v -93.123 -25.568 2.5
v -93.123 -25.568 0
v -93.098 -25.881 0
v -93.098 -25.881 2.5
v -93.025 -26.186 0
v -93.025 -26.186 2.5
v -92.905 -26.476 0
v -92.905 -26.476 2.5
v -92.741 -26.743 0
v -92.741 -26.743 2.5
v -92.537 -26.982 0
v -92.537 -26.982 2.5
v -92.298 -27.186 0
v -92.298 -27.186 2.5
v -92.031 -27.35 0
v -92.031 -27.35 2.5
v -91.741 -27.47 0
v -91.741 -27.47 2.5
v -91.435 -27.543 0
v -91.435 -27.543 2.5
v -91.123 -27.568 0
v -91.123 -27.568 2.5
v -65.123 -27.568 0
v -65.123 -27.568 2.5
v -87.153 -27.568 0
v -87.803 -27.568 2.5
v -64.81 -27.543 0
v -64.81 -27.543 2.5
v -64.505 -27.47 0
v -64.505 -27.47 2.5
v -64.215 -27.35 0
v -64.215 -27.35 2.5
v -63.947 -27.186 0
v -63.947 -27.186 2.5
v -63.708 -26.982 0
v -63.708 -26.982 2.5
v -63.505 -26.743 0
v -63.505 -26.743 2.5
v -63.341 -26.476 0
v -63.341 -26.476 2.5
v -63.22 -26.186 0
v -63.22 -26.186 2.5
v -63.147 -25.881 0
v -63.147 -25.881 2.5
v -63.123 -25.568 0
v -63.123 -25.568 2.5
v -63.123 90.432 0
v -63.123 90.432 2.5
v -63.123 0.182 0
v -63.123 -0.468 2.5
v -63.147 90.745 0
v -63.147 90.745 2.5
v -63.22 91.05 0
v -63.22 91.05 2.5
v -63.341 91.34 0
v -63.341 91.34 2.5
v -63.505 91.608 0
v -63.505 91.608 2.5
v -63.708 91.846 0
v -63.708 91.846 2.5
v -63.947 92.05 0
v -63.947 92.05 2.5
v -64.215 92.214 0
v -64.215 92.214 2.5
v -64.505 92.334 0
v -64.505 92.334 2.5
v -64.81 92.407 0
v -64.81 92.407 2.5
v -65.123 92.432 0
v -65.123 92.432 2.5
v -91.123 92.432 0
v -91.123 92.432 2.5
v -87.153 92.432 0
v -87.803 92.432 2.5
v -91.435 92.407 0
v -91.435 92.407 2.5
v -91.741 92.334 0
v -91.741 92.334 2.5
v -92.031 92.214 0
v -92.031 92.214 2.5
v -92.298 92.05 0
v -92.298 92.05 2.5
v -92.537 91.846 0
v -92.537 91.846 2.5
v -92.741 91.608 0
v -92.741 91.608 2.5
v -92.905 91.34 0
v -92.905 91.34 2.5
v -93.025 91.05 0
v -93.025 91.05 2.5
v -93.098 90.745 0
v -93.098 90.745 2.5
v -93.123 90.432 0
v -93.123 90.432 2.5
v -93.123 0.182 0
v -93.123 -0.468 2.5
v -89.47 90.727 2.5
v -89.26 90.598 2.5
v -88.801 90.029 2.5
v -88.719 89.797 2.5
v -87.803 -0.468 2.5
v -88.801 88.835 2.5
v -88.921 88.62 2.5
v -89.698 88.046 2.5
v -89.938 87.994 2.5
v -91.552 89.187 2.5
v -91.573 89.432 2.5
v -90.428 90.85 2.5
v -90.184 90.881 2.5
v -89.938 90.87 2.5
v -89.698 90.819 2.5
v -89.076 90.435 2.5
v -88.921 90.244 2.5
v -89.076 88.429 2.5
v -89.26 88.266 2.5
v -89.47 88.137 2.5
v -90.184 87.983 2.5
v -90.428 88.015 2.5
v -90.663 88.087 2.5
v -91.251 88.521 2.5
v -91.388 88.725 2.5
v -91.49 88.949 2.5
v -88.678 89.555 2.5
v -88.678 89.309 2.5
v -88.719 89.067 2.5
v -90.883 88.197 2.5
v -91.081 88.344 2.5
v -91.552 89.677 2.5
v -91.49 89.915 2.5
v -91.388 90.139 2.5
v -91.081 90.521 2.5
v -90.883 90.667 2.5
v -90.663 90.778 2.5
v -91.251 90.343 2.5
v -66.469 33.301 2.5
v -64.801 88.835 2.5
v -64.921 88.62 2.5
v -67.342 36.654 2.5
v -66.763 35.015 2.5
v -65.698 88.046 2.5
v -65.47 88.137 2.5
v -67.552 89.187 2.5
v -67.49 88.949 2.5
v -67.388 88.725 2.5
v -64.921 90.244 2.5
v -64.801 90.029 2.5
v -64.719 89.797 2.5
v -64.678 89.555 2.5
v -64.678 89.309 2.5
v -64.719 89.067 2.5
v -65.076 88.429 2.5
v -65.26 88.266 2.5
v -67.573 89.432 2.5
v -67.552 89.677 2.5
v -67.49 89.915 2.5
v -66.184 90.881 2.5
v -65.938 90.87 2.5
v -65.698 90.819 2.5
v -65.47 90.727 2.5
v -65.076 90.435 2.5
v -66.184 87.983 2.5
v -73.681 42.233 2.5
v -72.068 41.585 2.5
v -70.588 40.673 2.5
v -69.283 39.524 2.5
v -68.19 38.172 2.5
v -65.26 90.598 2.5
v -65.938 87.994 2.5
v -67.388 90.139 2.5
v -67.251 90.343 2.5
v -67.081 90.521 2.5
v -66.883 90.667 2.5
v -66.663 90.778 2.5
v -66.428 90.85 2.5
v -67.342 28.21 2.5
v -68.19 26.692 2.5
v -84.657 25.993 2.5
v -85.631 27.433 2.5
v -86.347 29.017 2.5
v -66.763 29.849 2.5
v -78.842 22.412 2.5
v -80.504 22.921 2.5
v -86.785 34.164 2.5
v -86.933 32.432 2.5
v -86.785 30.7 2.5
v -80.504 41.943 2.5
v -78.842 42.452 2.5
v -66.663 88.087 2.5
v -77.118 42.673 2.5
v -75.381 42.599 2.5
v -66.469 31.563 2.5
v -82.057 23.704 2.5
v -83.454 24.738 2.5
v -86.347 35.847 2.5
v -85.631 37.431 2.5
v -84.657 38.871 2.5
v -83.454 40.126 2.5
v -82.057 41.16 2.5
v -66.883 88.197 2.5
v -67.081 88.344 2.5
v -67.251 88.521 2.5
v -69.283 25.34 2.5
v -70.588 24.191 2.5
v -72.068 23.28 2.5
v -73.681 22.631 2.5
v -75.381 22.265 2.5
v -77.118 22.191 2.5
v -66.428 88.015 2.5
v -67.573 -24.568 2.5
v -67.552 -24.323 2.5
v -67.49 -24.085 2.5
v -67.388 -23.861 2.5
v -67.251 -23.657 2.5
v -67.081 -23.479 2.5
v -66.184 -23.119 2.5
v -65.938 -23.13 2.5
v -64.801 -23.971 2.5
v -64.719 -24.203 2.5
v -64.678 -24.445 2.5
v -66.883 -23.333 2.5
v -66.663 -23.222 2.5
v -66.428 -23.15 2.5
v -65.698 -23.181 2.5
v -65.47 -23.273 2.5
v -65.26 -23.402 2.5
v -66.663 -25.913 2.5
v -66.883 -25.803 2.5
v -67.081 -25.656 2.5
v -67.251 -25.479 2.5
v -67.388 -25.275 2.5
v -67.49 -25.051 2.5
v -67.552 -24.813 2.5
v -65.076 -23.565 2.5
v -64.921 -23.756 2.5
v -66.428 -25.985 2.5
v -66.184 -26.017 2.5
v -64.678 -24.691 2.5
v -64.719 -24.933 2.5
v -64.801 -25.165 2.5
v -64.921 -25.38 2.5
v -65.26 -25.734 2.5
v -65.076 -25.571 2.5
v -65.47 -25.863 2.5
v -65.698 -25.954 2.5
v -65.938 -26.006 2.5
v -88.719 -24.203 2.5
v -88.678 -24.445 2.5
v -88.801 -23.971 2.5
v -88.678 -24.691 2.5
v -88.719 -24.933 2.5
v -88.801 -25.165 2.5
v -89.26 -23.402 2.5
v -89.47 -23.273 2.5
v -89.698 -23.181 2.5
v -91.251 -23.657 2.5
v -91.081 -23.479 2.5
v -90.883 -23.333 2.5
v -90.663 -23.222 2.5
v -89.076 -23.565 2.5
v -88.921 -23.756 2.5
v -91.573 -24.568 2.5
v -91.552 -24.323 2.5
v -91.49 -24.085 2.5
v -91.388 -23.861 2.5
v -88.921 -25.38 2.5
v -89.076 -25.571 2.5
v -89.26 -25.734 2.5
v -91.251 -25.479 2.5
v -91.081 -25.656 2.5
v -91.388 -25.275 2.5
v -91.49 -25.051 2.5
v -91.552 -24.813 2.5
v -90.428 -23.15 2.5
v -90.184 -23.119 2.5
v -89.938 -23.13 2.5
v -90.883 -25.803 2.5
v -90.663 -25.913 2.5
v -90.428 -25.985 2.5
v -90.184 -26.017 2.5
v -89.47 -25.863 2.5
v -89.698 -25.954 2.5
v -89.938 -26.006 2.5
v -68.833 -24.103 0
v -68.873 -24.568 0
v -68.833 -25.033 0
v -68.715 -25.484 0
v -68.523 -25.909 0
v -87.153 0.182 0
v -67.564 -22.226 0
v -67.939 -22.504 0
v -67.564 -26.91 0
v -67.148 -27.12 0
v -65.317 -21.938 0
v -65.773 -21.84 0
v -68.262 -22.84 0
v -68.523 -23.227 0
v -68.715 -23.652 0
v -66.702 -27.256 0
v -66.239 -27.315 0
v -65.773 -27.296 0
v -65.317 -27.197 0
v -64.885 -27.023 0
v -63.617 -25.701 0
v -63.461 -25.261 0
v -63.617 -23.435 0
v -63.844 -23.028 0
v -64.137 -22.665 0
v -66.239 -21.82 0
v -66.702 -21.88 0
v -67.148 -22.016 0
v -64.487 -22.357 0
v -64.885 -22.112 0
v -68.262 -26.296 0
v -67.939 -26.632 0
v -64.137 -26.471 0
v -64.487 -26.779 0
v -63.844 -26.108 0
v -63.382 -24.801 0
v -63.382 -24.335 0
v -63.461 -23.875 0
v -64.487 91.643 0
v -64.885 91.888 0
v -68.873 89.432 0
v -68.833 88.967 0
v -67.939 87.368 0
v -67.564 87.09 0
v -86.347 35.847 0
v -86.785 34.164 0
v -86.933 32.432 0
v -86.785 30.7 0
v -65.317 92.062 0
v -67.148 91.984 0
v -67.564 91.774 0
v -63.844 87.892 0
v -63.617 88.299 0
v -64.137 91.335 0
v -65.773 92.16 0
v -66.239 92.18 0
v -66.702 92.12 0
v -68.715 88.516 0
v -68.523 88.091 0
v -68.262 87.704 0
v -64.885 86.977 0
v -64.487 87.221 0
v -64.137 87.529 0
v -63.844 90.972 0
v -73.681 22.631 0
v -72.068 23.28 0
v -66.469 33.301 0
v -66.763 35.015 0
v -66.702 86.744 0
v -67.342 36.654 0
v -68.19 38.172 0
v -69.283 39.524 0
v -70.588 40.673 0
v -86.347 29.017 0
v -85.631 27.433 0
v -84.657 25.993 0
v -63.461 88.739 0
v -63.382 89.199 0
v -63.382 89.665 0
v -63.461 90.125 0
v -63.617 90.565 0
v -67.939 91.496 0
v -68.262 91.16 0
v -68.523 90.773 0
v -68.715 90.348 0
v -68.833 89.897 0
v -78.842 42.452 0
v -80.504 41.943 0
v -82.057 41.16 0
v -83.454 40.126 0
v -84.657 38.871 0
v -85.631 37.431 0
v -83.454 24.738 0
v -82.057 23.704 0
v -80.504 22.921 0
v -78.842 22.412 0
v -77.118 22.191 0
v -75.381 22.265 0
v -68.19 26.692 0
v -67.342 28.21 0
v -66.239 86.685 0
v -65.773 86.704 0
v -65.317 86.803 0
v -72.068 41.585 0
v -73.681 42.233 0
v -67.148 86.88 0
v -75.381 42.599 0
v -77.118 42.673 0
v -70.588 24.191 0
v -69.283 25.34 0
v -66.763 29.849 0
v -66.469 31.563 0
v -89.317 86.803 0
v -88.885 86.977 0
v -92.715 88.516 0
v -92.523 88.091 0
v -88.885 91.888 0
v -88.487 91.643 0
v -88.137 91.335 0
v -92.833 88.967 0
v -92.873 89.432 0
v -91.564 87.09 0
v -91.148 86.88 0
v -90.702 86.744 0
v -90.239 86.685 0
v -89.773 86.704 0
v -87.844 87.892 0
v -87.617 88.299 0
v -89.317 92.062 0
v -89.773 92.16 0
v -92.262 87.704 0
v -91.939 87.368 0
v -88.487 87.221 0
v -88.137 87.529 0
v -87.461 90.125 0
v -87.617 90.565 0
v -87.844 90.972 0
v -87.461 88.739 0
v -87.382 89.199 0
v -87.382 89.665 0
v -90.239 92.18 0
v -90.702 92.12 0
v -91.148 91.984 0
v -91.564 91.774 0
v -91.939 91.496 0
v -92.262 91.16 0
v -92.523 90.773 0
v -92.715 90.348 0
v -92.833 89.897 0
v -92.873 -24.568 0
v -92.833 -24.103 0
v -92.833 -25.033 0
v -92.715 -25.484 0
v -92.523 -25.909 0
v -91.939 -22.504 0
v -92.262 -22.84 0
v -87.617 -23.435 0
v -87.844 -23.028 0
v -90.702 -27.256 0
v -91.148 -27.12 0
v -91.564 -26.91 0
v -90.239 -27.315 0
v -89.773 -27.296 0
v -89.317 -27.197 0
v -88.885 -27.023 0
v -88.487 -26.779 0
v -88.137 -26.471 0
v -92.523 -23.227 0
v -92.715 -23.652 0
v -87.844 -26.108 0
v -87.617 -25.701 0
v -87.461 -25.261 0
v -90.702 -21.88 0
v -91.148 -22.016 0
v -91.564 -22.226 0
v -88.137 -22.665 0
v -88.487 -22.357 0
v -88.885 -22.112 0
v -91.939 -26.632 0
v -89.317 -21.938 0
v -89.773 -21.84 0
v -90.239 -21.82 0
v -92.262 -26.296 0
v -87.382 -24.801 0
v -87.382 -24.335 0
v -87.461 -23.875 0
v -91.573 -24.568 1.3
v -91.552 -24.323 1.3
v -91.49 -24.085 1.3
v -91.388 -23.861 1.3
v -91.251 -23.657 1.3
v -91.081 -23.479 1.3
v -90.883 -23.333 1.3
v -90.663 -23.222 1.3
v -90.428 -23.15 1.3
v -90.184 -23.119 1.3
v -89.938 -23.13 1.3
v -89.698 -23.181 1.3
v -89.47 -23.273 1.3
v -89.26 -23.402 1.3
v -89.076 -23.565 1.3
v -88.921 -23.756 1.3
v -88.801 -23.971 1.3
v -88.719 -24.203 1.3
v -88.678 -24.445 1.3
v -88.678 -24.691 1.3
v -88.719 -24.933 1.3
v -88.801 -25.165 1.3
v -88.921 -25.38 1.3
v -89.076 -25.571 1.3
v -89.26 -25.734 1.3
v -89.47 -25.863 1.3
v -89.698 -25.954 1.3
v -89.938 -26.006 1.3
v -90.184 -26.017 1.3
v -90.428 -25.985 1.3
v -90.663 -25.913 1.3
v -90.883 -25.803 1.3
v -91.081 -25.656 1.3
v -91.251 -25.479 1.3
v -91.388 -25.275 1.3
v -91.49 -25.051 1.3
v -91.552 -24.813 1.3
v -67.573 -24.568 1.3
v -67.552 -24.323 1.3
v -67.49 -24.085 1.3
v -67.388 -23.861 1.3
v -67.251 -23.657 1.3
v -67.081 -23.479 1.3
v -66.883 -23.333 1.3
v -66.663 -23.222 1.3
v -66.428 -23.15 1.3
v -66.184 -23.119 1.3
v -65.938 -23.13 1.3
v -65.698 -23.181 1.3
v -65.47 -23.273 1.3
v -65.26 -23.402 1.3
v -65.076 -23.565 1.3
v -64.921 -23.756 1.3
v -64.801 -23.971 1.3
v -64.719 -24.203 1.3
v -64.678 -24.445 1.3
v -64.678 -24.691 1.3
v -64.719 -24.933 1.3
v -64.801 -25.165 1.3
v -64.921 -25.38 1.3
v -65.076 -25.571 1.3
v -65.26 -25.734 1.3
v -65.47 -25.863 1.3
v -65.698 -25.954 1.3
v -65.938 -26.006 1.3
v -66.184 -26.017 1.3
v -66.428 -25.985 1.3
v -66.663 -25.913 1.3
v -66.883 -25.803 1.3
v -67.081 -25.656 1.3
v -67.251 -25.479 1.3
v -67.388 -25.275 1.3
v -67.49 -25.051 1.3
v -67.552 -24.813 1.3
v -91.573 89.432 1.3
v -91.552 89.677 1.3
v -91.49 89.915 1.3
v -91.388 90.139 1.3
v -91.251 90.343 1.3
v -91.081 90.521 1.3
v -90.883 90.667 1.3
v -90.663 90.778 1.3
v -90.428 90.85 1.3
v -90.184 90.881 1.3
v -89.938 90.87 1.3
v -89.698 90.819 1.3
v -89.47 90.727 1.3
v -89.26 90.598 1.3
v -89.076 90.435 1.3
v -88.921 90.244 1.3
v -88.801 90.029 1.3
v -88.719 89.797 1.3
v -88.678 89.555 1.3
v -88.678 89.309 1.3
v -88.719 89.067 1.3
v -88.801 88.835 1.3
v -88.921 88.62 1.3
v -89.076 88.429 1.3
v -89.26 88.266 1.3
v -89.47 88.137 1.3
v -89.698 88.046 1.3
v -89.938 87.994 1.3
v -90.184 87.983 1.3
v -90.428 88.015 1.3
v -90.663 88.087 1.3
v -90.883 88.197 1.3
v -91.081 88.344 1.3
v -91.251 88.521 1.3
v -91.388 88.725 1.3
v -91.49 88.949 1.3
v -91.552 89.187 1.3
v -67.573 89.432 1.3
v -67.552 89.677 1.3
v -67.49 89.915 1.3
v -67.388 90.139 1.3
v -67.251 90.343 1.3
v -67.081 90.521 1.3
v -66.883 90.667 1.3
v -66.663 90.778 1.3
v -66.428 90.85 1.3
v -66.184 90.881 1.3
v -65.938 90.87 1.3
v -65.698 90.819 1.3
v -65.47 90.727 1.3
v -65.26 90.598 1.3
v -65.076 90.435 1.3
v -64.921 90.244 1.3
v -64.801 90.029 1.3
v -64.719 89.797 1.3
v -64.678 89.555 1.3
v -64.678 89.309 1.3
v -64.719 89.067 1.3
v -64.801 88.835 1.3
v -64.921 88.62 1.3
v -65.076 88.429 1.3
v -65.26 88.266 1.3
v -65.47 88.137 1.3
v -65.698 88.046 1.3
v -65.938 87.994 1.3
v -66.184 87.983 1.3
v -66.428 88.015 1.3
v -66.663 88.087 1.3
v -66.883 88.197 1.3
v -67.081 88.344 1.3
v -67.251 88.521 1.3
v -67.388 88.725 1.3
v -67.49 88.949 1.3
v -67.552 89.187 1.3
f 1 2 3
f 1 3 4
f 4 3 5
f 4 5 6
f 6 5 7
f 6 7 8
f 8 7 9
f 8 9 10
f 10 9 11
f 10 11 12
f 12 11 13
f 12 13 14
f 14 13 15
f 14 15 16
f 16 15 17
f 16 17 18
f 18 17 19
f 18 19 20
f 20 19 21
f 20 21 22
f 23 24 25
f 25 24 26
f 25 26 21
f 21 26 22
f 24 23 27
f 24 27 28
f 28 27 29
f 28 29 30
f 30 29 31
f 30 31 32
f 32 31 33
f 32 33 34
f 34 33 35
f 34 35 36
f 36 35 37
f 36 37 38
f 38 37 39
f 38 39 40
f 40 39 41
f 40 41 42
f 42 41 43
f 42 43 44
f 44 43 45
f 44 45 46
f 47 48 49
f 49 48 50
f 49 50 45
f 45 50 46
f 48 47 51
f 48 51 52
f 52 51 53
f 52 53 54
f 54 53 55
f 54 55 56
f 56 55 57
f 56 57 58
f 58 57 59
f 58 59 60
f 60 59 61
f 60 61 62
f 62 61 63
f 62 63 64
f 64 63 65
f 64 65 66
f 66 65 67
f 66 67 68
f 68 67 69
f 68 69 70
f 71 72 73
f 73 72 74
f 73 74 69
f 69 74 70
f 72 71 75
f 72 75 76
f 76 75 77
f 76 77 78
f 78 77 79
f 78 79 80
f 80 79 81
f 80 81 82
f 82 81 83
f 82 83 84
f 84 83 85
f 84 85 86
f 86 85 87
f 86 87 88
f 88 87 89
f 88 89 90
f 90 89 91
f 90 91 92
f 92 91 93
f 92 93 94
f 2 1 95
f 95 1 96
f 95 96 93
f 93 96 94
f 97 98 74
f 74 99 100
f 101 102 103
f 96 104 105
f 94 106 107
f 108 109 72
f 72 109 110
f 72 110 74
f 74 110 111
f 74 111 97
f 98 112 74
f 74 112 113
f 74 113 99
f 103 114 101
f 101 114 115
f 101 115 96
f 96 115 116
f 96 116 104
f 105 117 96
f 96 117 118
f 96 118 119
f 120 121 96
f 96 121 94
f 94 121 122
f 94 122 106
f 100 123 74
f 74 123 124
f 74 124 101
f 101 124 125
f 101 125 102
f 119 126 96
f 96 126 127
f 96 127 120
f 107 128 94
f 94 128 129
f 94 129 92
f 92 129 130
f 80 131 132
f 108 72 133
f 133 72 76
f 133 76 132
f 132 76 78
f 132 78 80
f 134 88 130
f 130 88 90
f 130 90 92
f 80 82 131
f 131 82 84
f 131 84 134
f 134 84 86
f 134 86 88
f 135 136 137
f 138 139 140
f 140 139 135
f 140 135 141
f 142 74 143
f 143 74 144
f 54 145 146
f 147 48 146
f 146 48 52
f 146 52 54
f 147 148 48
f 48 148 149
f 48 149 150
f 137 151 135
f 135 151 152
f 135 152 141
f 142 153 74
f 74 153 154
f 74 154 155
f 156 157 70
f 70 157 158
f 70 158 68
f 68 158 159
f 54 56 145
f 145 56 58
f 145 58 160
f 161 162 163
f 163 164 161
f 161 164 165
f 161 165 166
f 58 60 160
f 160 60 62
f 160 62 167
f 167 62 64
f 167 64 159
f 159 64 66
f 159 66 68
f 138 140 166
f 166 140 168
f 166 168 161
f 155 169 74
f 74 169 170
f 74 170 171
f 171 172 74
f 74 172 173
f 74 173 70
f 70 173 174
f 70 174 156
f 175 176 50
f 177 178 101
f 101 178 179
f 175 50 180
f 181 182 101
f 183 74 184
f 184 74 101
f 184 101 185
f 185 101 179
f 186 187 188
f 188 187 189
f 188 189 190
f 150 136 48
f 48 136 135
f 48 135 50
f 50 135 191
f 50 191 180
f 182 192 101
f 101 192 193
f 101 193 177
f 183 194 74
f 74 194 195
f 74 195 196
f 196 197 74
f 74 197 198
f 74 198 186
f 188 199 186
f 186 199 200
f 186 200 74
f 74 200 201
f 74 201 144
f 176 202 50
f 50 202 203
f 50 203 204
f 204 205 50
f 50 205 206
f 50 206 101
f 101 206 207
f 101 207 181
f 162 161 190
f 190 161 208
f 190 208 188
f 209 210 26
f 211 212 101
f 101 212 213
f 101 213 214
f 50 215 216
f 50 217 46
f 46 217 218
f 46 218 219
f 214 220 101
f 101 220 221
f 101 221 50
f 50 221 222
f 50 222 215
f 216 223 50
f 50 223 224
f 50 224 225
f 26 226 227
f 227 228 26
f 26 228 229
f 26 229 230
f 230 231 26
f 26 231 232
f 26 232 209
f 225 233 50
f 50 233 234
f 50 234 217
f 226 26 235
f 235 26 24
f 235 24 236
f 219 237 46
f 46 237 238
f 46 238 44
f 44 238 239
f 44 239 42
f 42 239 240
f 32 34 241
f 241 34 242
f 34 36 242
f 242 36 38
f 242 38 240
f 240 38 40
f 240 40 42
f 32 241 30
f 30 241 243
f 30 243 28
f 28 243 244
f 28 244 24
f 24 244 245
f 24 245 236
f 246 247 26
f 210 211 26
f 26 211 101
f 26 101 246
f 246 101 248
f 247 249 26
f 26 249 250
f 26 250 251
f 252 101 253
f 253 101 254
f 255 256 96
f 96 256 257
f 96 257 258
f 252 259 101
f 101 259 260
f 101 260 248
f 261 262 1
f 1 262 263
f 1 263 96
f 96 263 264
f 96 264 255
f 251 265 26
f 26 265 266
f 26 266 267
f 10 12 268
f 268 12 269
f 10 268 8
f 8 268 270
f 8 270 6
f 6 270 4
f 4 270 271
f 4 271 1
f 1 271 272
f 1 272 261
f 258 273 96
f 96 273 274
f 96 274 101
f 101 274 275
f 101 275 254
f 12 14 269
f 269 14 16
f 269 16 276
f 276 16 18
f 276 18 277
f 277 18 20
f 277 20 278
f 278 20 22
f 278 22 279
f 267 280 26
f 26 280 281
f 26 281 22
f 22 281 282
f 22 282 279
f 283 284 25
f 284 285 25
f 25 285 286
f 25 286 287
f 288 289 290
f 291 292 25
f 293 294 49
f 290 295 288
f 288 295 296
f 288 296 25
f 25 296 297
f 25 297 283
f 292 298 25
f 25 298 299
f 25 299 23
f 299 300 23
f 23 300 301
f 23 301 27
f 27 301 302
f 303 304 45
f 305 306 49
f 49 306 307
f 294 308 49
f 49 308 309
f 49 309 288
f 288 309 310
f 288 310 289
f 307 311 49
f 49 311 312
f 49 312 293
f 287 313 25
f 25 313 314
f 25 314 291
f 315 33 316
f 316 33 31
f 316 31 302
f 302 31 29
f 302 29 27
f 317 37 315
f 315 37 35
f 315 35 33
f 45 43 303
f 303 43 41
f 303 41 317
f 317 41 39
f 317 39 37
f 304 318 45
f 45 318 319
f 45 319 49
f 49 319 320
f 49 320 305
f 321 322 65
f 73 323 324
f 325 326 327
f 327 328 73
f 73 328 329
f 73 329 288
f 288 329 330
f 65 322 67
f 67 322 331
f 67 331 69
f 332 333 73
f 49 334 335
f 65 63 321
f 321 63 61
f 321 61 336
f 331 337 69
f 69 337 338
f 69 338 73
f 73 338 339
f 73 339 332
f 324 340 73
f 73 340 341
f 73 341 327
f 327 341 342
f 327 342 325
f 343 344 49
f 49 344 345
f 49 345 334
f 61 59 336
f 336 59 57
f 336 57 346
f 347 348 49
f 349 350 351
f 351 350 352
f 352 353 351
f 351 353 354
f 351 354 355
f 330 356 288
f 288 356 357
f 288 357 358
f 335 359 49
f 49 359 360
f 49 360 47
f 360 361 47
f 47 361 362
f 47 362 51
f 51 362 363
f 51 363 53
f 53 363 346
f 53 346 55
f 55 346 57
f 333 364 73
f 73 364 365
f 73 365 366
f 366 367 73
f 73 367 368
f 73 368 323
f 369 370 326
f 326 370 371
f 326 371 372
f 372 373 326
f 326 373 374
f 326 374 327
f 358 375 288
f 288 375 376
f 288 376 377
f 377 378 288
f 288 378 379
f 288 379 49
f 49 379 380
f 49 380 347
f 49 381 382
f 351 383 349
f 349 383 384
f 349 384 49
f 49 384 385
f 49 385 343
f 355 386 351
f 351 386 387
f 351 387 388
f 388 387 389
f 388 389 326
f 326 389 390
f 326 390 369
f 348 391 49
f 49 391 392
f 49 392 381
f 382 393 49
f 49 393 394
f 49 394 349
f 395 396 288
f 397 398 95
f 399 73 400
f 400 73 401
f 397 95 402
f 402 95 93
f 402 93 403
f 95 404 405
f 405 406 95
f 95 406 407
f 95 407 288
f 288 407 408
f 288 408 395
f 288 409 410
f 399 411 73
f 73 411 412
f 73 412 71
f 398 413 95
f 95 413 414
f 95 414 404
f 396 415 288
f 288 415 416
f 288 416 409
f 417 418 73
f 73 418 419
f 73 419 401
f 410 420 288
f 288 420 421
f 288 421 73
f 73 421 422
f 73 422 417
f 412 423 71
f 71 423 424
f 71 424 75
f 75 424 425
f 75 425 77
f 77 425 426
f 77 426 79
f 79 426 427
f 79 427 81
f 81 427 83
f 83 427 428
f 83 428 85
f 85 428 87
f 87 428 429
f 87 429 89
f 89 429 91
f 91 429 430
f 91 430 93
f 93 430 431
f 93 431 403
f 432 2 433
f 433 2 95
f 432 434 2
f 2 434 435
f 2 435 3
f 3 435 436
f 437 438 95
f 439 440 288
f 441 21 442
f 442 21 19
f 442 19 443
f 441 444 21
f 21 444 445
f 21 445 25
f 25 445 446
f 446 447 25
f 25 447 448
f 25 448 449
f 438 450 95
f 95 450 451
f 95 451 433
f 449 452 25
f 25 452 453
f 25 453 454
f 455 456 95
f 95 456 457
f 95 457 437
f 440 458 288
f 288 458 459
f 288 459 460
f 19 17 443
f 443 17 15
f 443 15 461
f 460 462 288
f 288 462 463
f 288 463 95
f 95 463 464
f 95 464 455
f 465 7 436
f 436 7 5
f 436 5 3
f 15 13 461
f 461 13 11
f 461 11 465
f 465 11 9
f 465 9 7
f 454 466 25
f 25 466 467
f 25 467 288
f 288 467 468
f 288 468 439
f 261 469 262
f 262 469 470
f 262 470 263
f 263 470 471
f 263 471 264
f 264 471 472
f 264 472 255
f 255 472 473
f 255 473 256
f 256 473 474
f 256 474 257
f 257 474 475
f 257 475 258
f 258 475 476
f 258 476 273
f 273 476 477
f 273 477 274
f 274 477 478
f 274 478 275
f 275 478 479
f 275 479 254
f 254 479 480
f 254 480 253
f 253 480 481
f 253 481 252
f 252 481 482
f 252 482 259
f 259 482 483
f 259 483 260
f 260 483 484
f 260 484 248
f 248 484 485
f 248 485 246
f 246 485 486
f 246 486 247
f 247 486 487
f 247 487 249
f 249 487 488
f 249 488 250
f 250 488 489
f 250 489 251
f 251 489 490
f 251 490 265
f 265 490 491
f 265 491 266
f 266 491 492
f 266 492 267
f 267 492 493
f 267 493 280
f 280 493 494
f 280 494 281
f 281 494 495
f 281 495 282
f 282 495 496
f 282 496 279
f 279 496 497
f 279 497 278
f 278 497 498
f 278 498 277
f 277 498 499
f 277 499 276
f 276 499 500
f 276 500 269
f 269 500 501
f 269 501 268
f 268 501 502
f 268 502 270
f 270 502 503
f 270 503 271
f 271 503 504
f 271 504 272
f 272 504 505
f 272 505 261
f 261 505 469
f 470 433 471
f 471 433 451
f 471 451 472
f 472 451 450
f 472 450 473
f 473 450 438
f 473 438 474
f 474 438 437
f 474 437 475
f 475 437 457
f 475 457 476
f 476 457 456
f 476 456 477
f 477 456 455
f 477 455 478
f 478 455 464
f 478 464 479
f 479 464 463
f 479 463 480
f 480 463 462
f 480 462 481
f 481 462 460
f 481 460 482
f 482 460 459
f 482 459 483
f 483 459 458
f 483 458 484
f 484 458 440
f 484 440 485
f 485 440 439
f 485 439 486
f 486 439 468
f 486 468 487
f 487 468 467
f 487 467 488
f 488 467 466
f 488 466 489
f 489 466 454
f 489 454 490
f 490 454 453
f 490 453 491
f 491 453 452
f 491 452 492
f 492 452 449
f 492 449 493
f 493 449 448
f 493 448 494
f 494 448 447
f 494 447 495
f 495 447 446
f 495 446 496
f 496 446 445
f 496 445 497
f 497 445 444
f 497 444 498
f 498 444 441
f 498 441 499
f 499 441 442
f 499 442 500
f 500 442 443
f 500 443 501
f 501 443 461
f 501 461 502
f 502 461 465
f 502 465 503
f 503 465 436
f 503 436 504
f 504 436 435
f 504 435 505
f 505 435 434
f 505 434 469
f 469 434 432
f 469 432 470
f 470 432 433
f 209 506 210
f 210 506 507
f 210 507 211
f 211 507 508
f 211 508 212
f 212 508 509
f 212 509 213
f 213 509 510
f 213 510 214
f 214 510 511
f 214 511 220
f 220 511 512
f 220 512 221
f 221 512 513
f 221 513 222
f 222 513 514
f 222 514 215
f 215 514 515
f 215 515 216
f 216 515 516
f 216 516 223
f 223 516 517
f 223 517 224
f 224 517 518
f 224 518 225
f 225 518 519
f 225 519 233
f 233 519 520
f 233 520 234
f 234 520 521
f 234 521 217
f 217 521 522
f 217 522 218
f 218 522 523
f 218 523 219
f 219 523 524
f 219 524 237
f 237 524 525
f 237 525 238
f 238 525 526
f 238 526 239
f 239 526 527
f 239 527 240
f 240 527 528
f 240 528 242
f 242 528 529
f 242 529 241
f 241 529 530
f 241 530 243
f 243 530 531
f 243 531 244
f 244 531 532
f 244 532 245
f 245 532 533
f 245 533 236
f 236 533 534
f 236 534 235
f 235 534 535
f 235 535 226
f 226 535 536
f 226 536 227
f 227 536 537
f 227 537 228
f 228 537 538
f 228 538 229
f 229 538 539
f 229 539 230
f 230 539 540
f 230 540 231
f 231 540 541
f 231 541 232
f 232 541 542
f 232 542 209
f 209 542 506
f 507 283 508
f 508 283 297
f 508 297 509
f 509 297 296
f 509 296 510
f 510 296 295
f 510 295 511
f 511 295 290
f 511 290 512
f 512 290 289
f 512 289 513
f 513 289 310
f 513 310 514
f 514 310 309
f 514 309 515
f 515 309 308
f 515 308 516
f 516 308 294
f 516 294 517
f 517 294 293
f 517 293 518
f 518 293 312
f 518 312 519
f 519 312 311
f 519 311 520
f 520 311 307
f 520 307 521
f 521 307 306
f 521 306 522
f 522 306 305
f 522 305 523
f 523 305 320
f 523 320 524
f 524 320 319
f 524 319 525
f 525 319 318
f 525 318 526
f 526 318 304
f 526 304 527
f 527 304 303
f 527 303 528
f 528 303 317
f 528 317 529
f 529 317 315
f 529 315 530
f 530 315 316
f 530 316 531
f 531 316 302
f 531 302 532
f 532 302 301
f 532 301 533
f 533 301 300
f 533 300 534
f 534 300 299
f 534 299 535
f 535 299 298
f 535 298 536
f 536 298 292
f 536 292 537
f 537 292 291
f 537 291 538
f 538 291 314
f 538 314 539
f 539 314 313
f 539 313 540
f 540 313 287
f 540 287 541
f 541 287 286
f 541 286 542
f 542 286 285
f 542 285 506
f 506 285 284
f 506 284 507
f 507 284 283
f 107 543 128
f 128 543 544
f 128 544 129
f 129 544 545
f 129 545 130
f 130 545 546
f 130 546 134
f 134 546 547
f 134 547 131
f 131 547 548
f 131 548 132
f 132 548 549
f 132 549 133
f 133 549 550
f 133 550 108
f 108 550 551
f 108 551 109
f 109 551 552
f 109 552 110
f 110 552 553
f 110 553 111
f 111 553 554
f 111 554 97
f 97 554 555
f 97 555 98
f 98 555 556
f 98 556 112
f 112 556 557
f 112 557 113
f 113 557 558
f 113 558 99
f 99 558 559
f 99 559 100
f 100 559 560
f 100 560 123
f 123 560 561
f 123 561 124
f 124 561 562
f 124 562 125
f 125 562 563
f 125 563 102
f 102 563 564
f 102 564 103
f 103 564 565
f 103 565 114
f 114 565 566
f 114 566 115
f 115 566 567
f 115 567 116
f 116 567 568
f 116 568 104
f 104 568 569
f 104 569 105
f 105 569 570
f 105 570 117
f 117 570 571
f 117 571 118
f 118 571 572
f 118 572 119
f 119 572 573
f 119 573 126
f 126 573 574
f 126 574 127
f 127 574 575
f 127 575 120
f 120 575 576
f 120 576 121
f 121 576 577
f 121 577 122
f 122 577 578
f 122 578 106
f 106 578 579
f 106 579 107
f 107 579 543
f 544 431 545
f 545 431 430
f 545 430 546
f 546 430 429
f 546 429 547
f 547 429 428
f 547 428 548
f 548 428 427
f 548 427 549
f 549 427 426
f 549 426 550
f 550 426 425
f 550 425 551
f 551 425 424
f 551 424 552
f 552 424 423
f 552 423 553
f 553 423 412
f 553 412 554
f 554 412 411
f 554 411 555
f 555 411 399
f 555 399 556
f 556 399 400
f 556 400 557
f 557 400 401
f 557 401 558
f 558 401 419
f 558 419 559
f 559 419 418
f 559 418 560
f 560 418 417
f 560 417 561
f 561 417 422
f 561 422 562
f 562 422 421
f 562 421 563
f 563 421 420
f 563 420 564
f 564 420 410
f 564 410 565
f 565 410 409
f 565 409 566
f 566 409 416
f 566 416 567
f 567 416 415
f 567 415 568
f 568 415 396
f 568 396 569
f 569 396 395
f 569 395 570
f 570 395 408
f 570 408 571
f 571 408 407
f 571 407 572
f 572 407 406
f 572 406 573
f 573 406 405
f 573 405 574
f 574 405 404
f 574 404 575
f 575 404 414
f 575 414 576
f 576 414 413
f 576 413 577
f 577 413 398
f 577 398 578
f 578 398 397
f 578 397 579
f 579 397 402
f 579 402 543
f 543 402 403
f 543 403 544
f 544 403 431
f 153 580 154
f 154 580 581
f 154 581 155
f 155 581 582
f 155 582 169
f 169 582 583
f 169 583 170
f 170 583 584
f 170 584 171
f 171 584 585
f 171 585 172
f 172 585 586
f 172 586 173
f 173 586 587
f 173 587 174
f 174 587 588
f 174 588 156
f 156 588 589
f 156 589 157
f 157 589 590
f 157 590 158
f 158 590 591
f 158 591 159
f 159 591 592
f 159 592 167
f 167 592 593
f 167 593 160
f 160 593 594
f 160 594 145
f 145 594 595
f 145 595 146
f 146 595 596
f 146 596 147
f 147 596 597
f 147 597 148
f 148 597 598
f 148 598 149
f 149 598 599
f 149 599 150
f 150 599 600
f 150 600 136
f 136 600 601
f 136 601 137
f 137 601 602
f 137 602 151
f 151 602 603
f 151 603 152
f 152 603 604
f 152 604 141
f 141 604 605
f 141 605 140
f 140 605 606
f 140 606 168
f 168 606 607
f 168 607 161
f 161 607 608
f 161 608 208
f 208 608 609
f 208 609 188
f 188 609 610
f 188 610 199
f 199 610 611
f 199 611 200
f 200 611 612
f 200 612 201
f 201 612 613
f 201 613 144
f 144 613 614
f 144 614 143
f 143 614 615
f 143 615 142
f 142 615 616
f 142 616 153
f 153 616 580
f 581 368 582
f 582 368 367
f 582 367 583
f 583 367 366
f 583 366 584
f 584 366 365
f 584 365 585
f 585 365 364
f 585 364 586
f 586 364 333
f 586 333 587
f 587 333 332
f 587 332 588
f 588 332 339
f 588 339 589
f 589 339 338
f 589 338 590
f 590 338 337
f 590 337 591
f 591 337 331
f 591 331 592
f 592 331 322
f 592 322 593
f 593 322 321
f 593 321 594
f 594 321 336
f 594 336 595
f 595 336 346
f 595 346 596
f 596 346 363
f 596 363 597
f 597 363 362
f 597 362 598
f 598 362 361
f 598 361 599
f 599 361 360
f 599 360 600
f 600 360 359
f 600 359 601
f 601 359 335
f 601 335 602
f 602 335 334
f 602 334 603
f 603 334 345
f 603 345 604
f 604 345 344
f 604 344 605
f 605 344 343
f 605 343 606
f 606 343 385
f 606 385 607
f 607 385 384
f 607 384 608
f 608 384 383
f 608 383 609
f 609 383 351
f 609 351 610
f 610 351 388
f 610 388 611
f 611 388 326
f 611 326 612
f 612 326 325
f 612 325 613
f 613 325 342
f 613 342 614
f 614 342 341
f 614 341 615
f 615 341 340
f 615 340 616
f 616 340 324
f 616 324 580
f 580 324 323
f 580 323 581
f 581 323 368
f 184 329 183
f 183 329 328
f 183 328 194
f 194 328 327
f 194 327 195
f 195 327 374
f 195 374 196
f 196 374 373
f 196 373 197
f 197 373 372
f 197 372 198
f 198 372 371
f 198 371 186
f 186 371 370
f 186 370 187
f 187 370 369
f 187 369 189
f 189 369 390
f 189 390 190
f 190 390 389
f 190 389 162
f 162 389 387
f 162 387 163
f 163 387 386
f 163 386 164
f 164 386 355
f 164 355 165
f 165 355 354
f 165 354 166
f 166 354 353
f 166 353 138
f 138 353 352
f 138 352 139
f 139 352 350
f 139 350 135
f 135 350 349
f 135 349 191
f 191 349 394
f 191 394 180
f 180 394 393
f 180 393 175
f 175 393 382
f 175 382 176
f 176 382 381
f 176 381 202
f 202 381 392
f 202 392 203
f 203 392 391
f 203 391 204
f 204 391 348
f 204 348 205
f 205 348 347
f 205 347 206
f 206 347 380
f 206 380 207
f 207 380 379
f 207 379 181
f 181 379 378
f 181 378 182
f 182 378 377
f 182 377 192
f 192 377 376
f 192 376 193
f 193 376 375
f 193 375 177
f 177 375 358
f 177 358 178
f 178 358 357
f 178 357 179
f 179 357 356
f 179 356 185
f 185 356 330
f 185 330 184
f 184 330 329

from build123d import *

# Parameters (mm, degrees)
BOSS_EXTRUDE1_DEPTH                          = 2.5
CSK_FOR_M2_5_COUNTERSUNK_FLAT_HEAD_S_2_COUNT = 2
CSK_FOR_M2_5_COUNTERSUNK_FLAT_HEAD_S_2_PITCH = 24
CSK_FOR_M2_5_COUNTERSUNK_FLAT_HEAD_S_3_COUNT = 2
CSK_FOR_M2_5_COUNTERSUNK_FLAT_HEAD_S_3_PITCH = 114
CSK_FOR_M2_5_COUNTERSUNK_FLAT_HEAD_S_4_COUNT = 2
CSK_FOR_M2_5_COUNTERSUNK_FLAT_HEAD_S_4_PITCH = 116.498927034
SKETCH4_R                                    = 10.25
CUT_EXTRUDE1_DEPTH                           = 132.231695022


with BuildPart() as part:
    # Sketch1 → Boss-Extrude1 (new body)
    with BuildSketch(Plane.XY):
        with BuildLine():
            Line((-63.122572744, 90.432106023), (-63.122572744, -25.567893977))
            ThreePointArc((-63.122572744, -25.567893977), (-63.708359182, -26.98210754), (-65.122572744, -27.567893977))
            Line((-65.122572744, -27.567893977), (-91.122572744, -27.567893977))
            ThreePointArc((-91.122572744, -27.567893977), (-92.536786306, -26.98210754), (-93.122572744, -25.567893977))
            Line((-93.122572744, -25.567893977), (-93.122572744, 90.432106023))
            ThreePointArc((-93.122572744, 90.432106023), (-92.536786306, 91.846319585), (-91.122572744, 92.432106023))
            Line((-91.122572744, 92.432106023), (-65.122572744, 92.432106023))
            ThreePointArc((-65.122572744, 92.432106023), (-63.708359182, 91.846319585), (-63.122572744, 90.432106023))
        make_face()
    extrude(amount=BOSS_EXTRUDE1_DEPTH)

    # Sketch3 → CSK for M2.5 Countersunk Flat Head Screw2 (revolve, cut)
    with BuildSketch(Plane(origin=(-66.122572744, 89.432106023, 0), x_dir=(0, 1, 0), z_dir=(1, 0, 0))):
        Polygon((0, 0), (0, 2.5), (1.45, 2.5), (1.45, 1.3), (2.75, 0), align=None)
    csk_for_m2_5_countersunk_flat_head_screw = revolve(axis=Axis((-66.122572744, 89.432106023, -6.35), (0, 0, 1)), mode=Mode.SUBTRACT)

    # CSK for M2.5 Countersunk Flat Head S 2: CSK for M2.5 Countersunk Flat Head Screw2 ×2
    with Locations(*[(-i * CSK_FOR_M2_5_COUNTERSUNK_FLAT_HEAD_S_2_PITCH, 0, 0) for i in range(1, CSK_FOR_M2_5_COUNTERSUNK_FLAT_HEAD_S_2_COUNT)]):
        add(csk_for_m2_5_countersunk_flat_head_screw, mode=Mode.SUBTRACT)

    # CSK for M2.5 Countersunk Flat Head S 3: CSK for M2.5 Countersunk Flat Head Screw2 ×2
    with Locations(*[(0, -i * CSK_FOR_M2_5_COUNTERSUNK_FLAT_HEAD_S_3_PITCH, 0) for i in range(1, CSK_FOR_M2_5_COUNTERSUNK_FLAT_HEAD_S_3_COUNT)]):
        add(csk_for_m2_5_countersunk_flat_head_screw, mode=Mode.SUBTRACT)

    # CSK for M2.5 Countersunk Flat Head S 4: CSK for M2.5 Countersunk Flat Head Screw2 ×2
    with Locations(*[Vector(-0.20601048104984201, -0.978549784986749, 0) * (i * CSK_FOR_M2_5_COUNTERSUNK_FLAT_HEAD_S_4_PITCH) for i in range(1, CSK_FOR_M2_5_COUNTERSUNK_FLAT_HEAD_S_4_COUNT)]):
        add(csk_for_m2_5_countersunk_flat_head_screw, mode=Mode.SUBTRACT)

    # Sketch4 → Cut-Extrude1 (cut, through all)
    with BuildSketch(Plane(origin=(0, 0, 0), x_dir=(-1, 0, 0), z_dir=(0, 0, -1))):
        with Locations((76.682572744, 32.432106023)):
            Circle(SKETCH4_R)
    extrude(amount=-CUT_EXTRUDE1_DEPTH, mode=Mode.SUBTRACT)


solid = part.part
